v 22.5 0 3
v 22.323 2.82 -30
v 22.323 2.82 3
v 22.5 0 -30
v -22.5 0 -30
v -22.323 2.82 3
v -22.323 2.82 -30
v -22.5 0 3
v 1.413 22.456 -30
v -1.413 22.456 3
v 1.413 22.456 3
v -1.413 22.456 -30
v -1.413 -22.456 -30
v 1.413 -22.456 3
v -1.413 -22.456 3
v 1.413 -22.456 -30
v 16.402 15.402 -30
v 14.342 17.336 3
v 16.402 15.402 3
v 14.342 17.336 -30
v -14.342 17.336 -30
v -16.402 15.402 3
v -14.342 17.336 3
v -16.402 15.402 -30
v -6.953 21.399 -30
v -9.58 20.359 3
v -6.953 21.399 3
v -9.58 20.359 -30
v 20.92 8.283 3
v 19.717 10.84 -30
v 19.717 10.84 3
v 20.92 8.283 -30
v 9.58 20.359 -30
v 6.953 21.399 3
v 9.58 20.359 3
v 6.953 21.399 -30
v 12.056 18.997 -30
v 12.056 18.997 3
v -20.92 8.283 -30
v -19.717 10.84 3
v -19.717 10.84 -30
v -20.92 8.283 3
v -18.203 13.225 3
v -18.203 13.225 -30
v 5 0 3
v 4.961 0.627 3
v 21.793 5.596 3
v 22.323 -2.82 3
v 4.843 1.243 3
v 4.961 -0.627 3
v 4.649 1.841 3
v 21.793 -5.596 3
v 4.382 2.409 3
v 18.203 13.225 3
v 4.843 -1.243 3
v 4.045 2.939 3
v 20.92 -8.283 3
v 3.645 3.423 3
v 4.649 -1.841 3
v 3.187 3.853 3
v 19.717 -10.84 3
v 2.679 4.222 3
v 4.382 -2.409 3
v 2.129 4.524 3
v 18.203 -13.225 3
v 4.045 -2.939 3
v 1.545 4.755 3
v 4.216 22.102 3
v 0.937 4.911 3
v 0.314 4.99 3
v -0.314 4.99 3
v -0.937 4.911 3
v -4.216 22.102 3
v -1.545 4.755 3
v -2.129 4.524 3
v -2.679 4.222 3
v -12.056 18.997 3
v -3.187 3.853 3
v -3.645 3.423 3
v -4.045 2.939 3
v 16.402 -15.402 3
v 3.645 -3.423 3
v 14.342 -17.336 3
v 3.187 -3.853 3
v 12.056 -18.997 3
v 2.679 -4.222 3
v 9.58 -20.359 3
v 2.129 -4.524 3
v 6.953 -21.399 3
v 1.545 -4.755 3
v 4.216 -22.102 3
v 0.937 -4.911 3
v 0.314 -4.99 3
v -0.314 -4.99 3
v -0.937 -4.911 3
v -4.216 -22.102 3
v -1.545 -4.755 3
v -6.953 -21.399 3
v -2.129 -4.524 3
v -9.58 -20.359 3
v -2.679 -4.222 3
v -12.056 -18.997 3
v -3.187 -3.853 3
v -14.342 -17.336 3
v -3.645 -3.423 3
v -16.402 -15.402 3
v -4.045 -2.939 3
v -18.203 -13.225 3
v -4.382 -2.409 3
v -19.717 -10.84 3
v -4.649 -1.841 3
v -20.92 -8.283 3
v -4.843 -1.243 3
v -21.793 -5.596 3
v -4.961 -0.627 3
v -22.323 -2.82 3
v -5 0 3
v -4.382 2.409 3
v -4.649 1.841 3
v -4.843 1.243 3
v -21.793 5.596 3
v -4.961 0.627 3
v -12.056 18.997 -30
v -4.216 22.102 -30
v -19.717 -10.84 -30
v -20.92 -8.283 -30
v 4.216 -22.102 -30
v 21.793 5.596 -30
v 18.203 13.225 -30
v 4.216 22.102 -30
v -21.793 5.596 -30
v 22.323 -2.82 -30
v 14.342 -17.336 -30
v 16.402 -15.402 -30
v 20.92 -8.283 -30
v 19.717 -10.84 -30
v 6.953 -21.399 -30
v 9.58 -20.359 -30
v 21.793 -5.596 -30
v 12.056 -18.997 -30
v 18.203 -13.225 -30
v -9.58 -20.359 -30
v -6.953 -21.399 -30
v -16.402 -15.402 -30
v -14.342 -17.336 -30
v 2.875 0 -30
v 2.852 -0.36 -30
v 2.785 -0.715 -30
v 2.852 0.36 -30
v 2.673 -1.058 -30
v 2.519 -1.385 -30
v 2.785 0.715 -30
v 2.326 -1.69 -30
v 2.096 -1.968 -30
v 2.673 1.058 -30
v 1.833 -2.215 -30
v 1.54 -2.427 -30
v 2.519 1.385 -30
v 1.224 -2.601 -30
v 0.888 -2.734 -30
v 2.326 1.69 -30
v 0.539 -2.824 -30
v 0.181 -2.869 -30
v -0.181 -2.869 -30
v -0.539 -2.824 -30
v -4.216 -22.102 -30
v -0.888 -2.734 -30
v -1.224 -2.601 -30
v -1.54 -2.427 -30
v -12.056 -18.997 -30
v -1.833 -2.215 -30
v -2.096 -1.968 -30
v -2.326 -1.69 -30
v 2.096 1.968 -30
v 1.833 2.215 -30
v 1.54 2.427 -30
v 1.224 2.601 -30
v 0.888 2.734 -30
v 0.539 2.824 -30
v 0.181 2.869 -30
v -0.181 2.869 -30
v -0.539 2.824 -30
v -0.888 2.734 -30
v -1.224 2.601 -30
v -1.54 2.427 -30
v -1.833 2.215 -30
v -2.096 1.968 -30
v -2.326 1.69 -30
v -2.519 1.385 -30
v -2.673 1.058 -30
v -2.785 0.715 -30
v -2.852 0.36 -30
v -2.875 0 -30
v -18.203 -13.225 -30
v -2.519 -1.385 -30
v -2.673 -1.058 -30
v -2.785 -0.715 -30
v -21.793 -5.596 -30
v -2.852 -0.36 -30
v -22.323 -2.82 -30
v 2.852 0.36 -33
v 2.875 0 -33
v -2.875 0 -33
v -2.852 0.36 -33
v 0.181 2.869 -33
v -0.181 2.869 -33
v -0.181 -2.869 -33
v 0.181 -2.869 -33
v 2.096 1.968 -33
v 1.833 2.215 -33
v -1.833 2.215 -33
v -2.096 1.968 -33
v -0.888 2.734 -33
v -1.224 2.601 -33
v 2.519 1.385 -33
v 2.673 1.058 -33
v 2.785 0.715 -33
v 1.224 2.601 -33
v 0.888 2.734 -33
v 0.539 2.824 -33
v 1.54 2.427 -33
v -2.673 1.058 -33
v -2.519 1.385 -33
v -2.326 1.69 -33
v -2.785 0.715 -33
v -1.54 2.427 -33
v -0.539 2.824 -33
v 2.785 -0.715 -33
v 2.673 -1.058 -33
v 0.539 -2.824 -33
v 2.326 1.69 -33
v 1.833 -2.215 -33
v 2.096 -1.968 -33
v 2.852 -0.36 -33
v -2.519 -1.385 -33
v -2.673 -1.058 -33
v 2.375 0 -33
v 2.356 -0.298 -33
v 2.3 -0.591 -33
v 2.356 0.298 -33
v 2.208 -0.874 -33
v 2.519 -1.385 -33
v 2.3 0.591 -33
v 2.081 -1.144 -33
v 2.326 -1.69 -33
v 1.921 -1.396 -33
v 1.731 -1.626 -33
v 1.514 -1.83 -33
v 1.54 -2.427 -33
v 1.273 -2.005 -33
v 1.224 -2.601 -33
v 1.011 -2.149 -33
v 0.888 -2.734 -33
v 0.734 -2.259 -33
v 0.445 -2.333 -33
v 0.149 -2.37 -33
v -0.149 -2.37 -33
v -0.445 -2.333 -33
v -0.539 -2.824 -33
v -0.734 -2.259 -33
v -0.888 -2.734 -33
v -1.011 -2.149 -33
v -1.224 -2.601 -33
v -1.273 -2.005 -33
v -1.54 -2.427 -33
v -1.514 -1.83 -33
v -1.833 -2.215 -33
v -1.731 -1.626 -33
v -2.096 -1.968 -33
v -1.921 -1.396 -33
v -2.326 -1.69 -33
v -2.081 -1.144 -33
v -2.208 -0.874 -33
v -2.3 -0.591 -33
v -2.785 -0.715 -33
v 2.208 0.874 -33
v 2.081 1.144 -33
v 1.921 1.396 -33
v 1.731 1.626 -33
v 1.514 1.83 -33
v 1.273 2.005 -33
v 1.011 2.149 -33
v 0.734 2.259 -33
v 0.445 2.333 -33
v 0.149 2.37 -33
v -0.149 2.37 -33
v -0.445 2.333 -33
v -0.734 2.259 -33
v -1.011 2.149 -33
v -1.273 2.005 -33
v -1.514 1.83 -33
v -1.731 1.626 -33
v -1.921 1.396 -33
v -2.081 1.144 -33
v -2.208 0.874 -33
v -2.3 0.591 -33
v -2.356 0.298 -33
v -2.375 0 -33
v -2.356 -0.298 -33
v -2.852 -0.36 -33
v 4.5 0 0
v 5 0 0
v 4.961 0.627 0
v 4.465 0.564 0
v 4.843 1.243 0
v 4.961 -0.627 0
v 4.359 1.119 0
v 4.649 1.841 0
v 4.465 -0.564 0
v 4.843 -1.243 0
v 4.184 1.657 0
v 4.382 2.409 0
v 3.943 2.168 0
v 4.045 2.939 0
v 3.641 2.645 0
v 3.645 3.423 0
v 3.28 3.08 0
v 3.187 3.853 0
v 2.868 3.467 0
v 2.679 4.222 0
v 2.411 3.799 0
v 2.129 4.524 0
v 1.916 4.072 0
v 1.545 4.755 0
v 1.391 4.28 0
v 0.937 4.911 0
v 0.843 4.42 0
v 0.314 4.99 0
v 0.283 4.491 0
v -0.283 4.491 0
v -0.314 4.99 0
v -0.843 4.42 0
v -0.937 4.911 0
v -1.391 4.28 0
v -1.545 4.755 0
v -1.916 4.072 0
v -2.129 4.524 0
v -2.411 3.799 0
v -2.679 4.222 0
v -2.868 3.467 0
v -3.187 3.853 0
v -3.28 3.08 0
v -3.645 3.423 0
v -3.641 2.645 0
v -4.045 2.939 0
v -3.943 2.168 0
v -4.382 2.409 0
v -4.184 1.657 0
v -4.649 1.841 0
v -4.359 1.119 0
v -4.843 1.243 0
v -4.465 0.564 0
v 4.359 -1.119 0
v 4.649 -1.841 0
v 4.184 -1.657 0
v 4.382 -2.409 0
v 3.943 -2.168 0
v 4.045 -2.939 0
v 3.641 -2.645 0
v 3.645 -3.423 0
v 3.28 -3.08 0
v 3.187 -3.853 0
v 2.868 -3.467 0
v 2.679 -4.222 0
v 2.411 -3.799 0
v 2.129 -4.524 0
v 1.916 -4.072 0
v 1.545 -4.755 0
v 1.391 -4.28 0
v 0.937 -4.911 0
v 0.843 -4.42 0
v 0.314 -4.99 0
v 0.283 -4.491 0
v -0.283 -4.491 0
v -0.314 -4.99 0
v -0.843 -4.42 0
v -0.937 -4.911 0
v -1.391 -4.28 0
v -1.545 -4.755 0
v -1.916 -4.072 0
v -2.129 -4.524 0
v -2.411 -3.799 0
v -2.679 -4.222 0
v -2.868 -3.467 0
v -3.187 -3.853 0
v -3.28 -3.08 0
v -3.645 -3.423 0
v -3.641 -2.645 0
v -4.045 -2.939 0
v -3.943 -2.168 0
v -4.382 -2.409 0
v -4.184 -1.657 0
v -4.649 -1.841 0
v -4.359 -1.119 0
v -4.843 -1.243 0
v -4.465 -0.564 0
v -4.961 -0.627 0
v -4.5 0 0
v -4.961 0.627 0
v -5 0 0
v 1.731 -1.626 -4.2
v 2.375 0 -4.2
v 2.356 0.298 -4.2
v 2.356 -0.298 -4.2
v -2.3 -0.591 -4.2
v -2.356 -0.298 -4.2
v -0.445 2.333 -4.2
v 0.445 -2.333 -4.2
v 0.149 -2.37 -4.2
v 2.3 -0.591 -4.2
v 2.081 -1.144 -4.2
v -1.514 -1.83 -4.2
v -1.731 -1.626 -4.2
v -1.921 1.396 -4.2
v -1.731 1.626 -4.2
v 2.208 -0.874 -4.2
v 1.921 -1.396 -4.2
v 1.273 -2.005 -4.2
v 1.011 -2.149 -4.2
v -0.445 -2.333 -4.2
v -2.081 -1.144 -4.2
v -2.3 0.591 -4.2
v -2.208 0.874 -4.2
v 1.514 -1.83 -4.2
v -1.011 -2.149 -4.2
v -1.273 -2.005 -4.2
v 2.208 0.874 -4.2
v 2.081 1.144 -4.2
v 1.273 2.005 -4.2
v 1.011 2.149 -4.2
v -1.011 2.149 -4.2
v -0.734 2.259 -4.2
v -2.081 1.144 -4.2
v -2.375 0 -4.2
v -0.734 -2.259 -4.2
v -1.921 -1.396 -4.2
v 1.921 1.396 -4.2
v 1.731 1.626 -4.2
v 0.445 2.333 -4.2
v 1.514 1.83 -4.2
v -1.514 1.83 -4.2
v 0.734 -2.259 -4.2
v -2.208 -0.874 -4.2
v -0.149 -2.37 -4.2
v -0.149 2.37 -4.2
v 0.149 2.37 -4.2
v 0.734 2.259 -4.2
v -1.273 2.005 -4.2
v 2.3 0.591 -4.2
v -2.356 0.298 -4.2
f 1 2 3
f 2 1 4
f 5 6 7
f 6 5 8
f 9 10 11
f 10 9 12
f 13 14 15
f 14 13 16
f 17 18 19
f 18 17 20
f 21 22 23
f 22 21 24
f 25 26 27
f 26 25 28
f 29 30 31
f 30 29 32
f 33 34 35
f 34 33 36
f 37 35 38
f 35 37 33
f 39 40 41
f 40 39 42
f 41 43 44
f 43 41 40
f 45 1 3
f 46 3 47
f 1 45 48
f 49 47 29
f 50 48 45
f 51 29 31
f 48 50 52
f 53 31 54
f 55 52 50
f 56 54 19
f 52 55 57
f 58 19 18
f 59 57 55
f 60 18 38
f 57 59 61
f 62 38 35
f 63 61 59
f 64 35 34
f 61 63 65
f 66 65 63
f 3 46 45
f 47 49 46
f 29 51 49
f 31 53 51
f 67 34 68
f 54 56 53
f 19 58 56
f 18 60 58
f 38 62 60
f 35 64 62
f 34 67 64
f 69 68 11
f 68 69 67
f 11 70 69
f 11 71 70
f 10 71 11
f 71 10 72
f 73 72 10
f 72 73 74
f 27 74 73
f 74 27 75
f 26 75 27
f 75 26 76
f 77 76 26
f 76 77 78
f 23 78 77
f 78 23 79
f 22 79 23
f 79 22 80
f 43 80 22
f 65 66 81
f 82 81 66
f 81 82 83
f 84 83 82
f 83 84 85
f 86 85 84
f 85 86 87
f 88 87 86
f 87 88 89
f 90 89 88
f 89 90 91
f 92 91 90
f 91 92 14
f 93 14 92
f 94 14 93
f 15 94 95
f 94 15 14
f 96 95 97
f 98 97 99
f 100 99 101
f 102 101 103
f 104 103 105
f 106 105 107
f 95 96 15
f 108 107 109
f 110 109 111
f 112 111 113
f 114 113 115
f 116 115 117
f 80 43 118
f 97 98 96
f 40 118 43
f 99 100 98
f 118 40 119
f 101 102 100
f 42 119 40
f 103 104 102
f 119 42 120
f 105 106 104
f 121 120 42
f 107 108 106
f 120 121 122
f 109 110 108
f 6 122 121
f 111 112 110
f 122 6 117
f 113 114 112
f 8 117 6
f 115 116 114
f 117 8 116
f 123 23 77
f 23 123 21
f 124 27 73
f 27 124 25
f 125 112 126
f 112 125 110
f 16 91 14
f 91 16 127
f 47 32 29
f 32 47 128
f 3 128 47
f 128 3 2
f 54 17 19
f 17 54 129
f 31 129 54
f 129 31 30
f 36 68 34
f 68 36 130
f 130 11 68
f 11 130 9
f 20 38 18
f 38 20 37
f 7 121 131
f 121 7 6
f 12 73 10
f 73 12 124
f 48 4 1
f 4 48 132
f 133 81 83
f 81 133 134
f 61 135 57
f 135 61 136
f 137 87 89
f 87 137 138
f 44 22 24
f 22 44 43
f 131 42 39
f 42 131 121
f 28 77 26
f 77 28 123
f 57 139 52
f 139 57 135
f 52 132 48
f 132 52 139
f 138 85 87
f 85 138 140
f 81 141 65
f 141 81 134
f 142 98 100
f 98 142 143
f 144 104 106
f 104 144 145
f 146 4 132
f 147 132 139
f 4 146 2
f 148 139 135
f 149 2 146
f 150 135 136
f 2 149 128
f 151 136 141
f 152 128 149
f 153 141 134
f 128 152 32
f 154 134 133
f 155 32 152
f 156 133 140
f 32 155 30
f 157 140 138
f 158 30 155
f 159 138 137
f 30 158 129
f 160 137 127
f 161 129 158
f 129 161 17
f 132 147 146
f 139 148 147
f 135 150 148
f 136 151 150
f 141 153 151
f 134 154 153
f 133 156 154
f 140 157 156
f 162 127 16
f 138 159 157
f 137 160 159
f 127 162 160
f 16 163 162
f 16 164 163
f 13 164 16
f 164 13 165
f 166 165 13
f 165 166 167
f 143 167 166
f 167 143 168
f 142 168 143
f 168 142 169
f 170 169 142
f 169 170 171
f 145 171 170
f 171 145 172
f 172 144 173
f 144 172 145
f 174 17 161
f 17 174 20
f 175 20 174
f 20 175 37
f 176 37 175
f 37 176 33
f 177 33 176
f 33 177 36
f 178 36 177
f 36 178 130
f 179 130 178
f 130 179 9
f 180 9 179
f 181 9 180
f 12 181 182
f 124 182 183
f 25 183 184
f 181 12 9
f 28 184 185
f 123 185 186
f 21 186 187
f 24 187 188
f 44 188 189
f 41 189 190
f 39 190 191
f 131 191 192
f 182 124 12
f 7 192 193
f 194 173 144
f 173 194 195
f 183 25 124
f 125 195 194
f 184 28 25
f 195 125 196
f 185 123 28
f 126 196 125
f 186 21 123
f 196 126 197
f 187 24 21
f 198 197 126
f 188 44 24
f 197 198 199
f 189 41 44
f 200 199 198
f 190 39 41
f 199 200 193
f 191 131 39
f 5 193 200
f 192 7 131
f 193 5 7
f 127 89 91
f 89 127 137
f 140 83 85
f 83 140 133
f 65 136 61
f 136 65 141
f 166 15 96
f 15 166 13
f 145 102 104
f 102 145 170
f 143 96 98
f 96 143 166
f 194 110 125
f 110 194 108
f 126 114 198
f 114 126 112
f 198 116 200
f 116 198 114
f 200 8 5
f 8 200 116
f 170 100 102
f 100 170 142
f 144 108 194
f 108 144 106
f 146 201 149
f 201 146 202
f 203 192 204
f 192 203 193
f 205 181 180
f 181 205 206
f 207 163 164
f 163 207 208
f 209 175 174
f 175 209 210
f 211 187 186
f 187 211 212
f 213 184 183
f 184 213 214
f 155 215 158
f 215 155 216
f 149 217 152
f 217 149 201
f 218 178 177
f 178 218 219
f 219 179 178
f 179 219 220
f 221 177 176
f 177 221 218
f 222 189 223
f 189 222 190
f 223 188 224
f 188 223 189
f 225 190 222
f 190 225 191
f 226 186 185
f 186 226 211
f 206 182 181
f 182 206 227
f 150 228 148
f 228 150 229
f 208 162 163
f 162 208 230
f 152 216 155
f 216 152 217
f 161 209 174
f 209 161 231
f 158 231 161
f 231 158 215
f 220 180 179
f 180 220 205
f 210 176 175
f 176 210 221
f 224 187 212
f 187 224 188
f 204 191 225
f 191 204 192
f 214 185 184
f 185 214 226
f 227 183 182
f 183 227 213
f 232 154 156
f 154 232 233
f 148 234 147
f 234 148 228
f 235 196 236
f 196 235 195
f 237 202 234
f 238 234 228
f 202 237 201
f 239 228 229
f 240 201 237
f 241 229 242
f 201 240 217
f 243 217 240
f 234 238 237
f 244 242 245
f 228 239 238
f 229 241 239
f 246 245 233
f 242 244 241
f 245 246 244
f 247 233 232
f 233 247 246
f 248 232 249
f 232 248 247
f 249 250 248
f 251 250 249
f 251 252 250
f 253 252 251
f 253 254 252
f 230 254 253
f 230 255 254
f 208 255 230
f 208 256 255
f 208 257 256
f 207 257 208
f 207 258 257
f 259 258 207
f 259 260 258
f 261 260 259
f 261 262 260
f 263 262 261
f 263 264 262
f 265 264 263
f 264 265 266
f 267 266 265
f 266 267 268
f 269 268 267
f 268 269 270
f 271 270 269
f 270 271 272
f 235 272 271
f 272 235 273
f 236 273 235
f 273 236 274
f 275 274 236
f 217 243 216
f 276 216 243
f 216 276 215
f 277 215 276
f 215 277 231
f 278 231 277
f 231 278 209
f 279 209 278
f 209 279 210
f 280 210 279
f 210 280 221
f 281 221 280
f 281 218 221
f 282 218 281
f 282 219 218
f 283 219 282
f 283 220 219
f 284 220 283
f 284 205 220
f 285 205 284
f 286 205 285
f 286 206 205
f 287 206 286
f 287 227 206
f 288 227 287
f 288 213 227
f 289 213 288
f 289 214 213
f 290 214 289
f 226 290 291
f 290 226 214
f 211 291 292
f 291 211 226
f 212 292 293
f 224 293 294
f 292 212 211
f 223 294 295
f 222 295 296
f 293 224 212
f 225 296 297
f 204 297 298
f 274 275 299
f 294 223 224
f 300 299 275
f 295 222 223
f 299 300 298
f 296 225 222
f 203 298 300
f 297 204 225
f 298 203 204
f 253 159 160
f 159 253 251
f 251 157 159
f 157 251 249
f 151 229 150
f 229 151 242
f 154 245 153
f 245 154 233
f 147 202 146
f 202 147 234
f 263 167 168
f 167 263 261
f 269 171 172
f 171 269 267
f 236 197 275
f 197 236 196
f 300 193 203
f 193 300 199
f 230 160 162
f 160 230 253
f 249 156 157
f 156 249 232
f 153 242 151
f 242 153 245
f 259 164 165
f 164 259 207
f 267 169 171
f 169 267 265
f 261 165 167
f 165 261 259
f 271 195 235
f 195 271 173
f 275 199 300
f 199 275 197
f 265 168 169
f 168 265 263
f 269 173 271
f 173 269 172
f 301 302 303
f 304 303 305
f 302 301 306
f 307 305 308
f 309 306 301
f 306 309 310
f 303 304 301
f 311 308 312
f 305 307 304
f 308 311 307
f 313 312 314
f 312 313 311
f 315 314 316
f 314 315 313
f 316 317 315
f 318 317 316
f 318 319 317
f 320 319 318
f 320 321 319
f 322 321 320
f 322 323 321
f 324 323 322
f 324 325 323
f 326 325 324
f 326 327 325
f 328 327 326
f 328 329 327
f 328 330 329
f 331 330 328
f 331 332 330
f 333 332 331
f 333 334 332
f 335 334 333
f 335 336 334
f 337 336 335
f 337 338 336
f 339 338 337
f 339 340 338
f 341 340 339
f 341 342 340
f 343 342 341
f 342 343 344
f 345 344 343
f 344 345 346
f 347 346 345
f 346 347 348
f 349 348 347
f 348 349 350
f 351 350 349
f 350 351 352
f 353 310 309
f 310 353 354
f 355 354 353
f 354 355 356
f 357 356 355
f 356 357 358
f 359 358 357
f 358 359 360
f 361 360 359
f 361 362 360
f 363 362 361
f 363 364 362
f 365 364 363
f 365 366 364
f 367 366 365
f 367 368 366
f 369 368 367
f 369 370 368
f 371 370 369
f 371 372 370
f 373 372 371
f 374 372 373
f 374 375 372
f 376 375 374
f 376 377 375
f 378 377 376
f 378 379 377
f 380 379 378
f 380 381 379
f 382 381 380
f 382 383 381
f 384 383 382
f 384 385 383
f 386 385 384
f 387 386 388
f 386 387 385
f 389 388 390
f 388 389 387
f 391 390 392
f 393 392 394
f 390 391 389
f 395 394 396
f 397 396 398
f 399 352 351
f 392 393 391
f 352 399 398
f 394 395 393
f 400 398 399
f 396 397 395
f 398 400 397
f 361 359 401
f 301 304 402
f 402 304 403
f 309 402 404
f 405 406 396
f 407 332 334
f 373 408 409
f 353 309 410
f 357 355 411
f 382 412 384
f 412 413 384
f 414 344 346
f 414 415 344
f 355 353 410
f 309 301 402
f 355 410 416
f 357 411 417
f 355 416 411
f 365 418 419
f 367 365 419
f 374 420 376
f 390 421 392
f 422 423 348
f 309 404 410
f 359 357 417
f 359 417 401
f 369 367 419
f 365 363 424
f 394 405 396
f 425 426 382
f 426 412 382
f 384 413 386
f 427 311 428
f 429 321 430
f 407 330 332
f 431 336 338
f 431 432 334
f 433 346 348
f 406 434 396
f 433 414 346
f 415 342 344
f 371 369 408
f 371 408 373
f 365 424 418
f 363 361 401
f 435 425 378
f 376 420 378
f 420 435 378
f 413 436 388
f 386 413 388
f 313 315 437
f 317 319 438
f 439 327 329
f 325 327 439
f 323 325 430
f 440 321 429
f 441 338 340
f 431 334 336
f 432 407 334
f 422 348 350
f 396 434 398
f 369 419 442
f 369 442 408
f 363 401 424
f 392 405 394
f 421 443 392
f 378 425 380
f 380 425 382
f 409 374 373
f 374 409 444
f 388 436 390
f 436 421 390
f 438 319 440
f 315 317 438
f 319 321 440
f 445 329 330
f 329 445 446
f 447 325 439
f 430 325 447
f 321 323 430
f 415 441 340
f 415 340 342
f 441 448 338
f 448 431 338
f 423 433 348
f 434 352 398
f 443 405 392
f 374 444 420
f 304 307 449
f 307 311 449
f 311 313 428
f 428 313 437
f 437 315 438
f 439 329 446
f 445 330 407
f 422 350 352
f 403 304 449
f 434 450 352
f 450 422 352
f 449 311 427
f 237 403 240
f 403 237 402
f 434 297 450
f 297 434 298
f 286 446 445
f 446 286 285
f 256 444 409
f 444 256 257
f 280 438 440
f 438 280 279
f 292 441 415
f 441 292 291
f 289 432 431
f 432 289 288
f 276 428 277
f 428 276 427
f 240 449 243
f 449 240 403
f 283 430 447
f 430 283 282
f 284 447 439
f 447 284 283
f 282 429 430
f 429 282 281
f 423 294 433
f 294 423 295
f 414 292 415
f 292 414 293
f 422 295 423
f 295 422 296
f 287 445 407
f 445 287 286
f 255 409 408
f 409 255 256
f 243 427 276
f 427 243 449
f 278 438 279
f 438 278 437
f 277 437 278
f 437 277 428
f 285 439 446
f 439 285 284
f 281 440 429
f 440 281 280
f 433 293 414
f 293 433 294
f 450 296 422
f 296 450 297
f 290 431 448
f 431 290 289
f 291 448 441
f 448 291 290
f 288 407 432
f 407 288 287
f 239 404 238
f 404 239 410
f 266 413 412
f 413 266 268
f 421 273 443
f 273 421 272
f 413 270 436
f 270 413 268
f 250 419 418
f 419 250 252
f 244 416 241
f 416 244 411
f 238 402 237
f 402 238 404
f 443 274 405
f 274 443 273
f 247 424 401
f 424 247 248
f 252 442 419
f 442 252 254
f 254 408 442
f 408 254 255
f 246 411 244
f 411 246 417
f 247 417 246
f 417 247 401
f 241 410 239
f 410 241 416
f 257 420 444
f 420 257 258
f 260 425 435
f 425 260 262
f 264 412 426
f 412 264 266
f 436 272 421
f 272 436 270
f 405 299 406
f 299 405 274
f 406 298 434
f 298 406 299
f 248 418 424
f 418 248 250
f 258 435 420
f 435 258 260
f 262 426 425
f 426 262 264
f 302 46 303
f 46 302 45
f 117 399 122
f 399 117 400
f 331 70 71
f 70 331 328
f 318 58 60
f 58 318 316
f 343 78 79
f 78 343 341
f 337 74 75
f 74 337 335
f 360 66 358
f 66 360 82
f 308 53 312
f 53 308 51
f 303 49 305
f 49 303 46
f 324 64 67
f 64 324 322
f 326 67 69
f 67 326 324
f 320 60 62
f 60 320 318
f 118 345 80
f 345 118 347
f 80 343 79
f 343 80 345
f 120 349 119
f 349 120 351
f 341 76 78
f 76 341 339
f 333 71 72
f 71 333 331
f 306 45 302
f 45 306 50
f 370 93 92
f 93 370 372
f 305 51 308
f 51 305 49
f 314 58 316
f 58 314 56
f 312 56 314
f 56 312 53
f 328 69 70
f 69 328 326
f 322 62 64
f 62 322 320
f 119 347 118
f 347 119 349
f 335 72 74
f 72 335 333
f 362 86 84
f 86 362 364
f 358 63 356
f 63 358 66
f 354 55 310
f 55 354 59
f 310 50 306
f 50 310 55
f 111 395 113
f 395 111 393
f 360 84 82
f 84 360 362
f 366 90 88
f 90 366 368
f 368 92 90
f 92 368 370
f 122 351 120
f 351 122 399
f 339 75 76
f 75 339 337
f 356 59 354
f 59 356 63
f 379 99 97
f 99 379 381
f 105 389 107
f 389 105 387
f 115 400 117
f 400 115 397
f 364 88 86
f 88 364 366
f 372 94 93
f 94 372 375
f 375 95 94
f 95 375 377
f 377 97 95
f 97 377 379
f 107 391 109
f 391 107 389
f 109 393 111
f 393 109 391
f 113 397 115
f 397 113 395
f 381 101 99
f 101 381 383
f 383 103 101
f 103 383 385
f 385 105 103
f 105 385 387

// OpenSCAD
$fn = 50;


difference() {
	union() {
		translate(v = [0, 0, -30.0000000000]) {
			cylinder(h = 33, r = 22.5000000000);
		}
		#translate(v = [0, 0, -33.0000000000]) {
			cylinder(h = 33, r = 2.8750000000);
		}
	}
	union() {
		translate(v = [0, 0, 0]) {
			rotate(a = [0, 0, 0]) {
				difference() {
					union() {
						translate(v = [0, 0, -33.0000000000]) {
							cylinder(h = 33, r = 2.2500000000);
						}
						translate(v = [0, 0, -4.2000000000]) {
							cylinder(h = 4.2000000000, r1 = 2.3750000000, r2 = 4.5000000000);
						}
						translate(v = [0, 0, -33.0000000000]) {
							cylinder(h = 33, r = 2.3750000000);
						}
						translate(v = [0, 0, -33.0000000000]) {
							cylinder(h = 33, r = 2.2500000000);
						}
					}
					union();
				}
			}
		}
		#cylinder(h = 3, r = 5.0000000000);
	}
}
